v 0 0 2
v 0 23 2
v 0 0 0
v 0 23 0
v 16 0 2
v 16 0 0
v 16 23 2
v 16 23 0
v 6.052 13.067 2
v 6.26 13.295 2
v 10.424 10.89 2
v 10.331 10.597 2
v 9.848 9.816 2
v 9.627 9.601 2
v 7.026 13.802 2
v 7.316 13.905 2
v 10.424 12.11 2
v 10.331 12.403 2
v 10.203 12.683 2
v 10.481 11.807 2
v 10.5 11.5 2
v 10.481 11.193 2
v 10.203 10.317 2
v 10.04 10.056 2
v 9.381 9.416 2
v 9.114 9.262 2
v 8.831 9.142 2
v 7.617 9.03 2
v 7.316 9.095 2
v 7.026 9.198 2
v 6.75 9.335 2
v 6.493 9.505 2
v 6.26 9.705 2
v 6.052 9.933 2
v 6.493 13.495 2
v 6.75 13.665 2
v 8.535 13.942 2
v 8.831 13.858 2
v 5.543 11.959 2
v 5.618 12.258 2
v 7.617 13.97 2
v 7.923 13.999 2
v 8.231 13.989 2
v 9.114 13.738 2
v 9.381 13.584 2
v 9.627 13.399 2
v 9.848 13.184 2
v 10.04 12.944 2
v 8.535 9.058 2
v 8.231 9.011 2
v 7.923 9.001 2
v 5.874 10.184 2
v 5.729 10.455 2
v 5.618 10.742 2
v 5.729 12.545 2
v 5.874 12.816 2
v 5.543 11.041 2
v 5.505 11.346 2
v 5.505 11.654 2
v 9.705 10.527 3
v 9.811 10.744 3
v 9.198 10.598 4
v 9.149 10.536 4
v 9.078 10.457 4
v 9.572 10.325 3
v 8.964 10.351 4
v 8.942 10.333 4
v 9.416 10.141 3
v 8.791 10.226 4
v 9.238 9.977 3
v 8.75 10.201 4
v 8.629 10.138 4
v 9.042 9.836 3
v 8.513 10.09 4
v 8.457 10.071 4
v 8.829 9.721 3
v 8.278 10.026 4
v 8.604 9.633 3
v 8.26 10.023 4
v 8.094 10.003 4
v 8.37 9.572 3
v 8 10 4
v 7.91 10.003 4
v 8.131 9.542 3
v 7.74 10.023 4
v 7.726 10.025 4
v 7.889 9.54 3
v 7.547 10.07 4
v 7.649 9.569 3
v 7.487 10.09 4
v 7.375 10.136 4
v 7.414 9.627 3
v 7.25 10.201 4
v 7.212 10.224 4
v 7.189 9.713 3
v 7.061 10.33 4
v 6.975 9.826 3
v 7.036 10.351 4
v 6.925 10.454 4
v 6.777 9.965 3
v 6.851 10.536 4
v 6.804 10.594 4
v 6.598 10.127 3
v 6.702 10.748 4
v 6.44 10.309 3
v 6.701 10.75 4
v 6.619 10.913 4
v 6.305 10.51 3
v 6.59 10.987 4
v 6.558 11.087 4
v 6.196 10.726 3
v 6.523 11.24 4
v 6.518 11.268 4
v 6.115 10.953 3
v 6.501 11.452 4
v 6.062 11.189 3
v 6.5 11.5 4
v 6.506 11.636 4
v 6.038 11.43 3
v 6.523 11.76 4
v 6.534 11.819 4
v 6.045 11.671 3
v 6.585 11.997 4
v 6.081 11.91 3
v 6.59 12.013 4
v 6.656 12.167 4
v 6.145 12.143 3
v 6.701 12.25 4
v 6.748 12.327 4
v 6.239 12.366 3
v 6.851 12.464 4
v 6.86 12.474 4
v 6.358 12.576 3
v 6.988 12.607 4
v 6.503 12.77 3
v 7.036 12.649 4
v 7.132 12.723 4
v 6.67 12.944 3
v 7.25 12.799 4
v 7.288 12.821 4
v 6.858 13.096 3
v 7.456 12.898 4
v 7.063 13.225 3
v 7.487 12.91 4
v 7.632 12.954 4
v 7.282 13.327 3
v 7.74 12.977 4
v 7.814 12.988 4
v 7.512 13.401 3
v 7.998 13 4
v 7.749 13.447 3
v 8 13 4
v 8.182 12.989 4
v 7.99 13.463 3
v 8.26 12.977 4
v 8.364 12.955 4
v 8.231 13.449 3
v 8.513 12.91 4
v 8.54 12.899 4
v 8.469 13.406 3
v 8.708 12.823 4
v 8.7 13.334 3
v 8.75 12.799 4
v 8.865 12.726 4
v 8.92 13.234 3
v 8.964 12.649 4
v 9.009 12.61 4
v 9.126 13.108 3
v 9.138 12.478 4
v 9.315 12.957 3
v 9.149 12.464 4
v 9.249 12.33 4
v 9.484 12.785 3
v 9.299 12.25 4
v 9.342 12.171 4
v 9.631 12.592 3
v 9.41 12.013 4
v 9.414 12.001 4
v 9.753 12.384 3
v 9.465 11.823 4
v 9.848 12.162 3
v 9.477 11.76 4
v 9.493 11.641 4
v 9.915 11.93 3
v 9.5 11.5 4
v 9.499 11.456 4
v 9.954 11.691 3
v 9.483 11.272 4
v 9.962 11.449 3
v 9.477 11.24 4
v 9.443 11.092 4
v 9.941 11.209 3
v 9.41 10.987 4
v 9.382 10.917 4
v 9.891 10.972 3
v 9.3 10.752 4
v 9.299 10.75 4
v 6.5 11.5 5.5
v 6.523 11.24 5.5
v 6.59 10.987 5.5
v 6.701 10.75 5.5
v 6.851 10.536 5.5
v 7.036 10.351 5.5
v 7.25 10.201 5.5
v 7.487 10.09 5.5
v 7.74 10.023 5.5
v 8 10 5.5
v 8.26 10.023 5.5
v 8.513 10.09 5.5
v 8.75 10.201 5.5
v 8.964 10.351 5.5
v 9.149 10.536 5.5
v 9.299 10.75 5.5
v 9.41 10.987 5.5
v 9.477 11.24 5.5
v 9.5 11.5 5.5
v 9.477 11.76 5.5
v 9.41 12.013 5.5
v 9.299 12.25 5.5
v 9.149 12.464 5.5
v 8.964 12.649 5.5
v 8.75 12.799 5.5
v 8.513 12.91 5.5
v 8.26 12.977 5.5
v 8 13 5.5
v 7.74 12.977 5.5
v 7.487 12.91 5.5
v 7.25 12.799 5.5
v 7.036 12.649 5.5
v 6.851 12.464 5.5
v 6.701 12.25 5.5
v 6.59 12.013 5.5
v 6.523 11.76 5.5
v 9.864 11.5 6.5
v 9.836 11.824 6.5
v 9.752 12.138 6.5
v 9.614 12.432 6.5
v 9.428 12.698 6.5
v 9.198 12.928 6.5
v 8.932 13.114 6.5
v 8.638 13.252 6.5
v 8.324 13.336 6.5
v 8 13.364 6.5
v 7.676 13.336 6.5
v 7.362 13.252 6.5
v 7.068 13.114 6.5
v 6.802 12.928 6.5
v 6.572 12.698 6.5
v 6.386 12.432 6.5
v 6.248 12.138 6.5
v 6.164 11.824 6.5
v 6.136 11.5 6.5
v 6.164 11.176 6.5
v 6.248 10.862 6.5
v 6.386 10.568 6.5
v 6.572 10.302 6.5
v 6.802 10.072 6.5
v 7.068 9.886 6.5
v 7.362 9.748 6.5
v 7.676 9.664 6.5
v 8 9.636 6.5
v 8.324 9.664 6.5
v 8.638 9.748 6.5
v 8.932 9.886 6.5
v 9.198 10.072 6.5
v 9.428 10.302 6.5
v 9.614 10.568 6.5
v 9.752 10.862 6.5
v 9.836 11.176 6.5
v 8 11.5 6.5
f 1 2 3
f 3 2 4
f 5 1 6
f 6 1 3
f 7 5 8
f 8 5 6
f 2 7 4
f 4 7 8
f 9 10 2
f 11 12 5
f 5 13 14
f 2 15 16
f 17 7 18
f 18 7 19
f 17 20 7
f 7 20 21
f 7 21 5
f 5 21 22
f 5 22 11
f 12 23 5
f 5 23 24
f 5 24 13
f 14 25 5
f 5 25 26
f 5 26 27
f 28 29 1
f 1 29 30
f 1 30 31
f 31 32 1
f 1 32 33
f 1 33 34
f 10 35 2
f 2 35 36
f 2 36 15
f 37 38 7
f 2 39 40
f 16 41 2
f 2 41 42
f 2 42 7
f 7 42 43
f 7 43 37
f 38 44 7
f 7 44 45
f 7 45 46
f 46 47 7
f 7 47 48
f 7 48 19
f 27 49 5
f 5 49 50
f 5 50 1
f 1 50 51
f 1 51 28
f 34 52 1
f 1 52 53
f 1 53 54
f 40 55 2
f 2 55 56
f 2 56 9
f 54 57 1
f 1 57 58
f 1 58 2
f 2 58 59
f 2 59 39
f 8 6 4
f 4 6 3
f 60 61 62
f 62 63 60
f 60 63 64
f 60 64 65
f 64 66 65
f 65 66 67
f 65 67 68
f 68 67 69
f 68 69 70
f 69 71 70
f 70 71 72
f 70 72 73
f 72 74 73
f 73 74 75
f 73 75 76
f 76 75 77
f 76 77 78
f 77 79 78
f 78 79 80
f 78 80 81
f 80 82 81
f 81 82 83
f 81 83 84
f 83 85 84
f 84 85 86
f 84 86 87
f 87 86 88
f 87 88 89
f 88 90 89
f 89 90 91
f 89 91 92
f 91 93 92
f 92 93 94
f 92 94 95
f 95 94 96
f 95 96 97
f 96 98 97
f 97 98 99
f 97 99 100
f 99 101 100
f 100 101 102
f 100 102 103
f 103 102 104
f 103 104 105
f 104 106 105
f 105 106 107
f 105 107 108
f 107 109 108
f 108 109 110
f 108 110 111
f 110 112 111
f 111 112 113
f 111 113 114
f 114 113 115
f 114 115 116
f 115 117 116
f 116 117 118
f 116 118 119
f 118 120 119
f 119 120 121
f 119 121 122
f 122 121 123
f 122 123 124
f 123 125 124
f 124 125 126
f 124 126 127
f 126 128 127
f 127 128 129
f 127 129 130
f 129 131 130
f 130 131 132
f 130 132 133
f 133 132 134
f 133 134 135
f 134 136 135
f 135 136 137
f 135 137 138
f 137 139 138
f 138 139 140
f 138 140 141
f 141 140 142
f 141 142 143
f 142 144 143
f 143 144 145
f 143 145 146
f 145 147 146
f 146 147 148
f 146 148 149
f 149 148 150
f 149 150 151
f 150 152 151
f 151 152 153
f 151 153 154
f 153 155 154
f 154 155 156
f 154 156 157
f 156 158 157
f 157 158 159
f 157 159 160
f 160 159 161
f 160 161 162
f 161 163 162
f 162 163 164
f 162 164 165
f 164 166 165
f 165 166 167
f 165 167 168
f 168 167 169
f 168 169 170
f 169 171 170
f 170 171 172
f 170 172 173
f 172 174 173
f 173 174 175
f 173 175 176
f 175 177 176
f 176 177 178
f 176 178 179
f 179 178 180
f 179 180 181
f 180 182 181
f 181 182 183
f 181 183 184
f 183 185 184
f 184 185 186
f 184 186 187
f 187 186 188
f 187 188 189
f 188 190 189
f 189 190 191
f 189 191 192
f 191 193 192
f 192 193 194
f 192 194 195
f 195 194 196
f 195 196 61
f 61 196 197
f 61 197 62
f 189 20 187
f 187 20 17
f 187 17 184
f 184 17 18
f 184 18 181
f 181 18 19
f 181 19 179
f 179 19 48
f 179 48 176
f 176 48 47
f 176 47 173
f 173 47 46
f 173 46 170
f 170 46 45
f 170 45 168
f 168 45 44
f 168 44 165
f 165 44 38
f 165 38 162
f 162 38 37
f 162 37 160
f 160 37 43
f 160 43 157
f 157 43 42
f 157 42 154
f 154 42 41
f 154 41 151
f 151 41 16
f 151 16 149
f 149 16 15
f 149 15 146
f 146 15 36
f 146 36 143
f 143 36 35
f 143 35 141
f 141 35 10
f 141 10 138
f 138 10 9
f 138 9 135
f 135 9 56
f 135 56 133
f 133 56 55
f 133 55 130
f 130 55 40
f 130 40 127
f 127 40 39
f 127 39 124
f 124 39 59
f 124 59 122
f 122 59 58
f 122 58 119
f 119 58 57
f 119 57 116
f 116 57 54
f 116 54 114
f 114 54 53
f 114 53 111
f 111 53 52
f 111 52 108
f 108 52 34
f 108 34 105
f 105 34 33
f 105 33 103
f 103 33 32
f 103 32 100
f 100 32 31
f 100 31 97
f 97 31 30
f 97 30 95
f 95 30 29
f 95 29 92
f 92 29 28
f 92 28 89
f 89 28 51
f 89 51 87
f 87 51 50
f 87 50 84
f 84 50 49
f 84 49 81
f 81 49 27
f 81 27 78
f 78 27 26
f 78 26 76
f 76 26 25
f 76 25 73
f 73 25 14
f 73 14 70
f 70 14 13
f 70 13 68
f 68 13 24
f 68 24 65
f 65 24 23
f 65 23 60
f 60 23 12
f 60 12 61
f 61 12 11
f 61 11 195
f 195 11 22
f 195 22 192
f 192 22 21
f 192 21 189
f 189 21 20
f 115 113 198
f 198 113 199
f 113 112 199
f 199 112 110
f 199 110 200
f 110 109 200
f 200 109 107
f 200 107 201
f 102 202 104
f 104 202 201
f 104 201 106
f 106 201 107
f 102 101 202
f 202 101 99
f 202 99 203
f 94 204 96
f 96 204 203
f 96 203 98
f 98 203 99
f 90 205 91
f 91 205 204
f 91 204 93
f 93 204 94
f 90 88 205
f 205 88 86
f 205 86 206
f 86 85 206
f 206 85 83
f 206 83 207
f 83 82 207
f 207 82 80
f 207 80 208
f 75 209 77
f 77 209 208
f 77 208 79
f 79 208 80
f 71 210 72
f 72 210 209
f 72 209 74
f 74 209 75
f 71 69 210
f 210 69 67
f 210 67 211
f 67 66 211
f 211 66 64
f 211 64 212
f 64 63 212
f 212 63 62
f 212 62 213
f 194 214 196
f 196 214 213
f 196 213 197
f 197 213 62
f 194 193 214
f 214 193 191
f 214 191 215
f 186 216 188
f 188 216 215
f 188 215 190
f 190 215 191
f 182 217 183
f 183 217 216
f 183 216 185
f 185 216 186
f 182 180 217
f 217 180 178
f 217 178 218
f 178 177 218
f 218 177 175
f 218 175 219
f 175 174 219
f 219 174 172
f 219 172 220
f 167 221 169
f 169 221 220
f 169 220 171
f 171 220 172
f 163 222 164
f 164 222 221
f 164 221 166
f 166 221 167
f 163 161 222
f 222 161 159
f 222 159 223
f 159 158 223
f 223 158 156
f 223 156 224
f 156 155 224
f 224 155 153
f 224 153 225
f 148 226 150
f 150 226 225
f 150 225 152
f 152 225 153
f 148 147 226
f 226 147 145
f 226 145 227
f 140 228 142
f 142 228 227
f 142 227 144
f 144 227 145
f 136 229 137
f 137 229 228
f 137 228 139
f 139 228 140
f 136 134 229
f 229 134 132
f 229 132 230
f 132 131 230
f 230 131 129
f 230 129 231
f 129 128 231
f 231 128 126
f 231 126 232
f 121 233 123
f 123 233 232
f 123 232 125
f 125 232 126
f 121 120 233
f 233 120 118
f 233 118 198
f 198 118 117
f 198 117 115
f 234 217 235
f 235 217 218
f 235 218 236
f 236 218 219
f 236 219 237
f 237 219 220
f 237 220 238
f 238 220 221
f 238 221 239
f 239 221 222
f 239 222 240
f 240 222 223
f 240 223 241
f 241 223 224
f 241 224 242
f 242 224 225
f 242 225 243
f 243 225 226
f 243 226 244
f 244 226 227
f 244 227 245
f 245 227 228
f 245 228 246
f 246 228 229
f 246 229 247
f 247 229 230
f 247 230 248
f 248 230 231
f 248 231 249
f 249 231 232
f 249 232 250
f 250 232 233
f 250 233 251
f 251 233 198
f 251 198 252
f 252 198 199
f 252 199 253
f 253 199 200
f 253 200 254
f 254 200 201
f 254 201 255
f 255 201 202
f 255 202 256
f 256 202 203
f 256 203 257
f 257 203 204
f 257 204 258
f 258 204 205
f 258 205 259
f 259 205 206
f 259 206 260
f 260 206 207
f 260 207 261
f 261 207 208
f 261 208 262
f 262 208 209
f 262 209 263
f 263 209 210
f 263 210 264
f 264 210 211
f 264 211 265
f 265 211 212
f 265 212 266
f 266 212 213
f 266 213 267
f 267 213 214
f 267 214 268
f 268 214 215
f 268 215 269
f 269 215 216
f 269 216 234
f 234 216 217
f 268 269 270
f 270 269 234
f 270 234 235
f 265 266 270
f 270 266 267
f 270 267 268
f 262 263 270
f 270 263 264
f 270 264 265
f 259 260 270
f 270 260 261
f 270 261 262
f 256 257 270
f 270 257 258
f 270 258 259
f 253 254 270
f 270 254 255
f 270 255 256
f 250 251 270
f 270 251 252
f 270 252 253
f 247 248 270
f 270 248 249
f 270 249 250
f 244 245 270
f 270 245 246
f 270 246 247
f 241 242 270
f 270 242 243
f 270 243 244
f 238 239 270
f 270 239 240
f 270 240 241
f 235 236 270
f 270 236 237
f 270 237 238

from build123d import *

# Parameters (mm, degrees)
SKETCH1_W           = 16
SKETCH1_H           = 23
BOSS_EXTRUDE1_DEPTH = 2
SKETCH6_R           = 1.5
BOSS_EXTRUDE3_DEPTH = 1.5
SKETCH7_R           = 1.5
BOSS_EXTRUDE4_DEPTH = 1
BOSS_EXTRUDE4_DRAFT = -20


with BuildPart() as part:
    # Sketch1 → Boss-Extrude1 (new body)
    with BuildSketch(Plane.XY):
        with Locations((8, 11.5)):
            Rectangle(SKETCH1_W, SKETCH1_H)
    extrude(amount=BOSS_EXTRUDE1_DEPTH)

    # Loft1: read off the stored shape, not the designer's step
    # Loft1: loft between two sections, ruled curve by curve
    loft1_from = [
        Edge.make_bspline([(10.5, 11.5, 2), (10.5, 16.5, 2), (5.5, 16.5, 2), (5.5, 11.5, 2), (5.5, 6.5, 2), (10.5, 6.5, 2), (10.5, 11.5, 2)], [0, 0, 0, 0, 0.5, 0.5, 0.5, 1, 1, 1, 1], 3, [1, 0.333333333, 0.333333333, 1, 0.333333333, 0.333333333, 1]),
    ]
    loft1_to = [
        Edge.make_bspline([(9.382185261, 10.91727888, 4), (10.547627501, 13.681649403, 4), (7.783256979, 14.847091642, 4), (6.617814739, 12.08272112, 4), (5.452372499, 9.318350597, 4), (8.216743021, 8.152908358, 4), (9.382185261, 10.91727888, 4)], [0, 0, 0, 0, 0.5, 0.5, 0.5, 1, 1, 1, 1], 3, [1, 0.333333333, 0.333333333, 1, 0.333333333, 0.333333333, 1]),
    ]
    loft1 = Solid(Shell([*[Face.make_surface_from_curves(loft1_from[k], loft1_to[k]) for k in range(1)], Face(Wire(loft1_from)), Face(Wire(loft1_to))]))
    add(loft1)

    # Sketch6 → Boss-Extrude3 (add)
    with BuildSketch(Plane.XY.offset(4)):
        with Locations(Location((8, 11.5, 0), (0, 0, 337.14))):
            Circle(SKETCH6_R)
    extrude(amount=BOSS_EXTRUDE3_DEPTH)


with BuildPart() as boss_extrude4_tool:
    # Sketch7 → Boss-Extrude4 (with draft: the straight prism first)
    with BuildSketch(Plane.XY.offset(5.5)):
        with Locations(Location((8, 11.5, 0), (0, 0, 337.14))):
            Circle(SKETCH7_R)
    extrude(amount=BOSS_EXTRUDE4_DEPTH)
    # Boss-Extrude4: the draft: its side faces are tilted about the plane it starts from
    boss_extrude4_sides = [boss_extrude4_tool.faces().sort_by_distance(p)[0] for p in [
        (6.617814739, 12.08272112, 6),
    ]]
    draft(boss_extrude4_sides, Plane.XY.offset(5.5), BOSS_EXTRUDE4_DRAFT)


with BuildPart() as part_1:
    add(part.part)

    # Boss-Extrude4: add boss_extrude4_tool
    add(boss_extrude4_tool.part)


solid = part_1.part
